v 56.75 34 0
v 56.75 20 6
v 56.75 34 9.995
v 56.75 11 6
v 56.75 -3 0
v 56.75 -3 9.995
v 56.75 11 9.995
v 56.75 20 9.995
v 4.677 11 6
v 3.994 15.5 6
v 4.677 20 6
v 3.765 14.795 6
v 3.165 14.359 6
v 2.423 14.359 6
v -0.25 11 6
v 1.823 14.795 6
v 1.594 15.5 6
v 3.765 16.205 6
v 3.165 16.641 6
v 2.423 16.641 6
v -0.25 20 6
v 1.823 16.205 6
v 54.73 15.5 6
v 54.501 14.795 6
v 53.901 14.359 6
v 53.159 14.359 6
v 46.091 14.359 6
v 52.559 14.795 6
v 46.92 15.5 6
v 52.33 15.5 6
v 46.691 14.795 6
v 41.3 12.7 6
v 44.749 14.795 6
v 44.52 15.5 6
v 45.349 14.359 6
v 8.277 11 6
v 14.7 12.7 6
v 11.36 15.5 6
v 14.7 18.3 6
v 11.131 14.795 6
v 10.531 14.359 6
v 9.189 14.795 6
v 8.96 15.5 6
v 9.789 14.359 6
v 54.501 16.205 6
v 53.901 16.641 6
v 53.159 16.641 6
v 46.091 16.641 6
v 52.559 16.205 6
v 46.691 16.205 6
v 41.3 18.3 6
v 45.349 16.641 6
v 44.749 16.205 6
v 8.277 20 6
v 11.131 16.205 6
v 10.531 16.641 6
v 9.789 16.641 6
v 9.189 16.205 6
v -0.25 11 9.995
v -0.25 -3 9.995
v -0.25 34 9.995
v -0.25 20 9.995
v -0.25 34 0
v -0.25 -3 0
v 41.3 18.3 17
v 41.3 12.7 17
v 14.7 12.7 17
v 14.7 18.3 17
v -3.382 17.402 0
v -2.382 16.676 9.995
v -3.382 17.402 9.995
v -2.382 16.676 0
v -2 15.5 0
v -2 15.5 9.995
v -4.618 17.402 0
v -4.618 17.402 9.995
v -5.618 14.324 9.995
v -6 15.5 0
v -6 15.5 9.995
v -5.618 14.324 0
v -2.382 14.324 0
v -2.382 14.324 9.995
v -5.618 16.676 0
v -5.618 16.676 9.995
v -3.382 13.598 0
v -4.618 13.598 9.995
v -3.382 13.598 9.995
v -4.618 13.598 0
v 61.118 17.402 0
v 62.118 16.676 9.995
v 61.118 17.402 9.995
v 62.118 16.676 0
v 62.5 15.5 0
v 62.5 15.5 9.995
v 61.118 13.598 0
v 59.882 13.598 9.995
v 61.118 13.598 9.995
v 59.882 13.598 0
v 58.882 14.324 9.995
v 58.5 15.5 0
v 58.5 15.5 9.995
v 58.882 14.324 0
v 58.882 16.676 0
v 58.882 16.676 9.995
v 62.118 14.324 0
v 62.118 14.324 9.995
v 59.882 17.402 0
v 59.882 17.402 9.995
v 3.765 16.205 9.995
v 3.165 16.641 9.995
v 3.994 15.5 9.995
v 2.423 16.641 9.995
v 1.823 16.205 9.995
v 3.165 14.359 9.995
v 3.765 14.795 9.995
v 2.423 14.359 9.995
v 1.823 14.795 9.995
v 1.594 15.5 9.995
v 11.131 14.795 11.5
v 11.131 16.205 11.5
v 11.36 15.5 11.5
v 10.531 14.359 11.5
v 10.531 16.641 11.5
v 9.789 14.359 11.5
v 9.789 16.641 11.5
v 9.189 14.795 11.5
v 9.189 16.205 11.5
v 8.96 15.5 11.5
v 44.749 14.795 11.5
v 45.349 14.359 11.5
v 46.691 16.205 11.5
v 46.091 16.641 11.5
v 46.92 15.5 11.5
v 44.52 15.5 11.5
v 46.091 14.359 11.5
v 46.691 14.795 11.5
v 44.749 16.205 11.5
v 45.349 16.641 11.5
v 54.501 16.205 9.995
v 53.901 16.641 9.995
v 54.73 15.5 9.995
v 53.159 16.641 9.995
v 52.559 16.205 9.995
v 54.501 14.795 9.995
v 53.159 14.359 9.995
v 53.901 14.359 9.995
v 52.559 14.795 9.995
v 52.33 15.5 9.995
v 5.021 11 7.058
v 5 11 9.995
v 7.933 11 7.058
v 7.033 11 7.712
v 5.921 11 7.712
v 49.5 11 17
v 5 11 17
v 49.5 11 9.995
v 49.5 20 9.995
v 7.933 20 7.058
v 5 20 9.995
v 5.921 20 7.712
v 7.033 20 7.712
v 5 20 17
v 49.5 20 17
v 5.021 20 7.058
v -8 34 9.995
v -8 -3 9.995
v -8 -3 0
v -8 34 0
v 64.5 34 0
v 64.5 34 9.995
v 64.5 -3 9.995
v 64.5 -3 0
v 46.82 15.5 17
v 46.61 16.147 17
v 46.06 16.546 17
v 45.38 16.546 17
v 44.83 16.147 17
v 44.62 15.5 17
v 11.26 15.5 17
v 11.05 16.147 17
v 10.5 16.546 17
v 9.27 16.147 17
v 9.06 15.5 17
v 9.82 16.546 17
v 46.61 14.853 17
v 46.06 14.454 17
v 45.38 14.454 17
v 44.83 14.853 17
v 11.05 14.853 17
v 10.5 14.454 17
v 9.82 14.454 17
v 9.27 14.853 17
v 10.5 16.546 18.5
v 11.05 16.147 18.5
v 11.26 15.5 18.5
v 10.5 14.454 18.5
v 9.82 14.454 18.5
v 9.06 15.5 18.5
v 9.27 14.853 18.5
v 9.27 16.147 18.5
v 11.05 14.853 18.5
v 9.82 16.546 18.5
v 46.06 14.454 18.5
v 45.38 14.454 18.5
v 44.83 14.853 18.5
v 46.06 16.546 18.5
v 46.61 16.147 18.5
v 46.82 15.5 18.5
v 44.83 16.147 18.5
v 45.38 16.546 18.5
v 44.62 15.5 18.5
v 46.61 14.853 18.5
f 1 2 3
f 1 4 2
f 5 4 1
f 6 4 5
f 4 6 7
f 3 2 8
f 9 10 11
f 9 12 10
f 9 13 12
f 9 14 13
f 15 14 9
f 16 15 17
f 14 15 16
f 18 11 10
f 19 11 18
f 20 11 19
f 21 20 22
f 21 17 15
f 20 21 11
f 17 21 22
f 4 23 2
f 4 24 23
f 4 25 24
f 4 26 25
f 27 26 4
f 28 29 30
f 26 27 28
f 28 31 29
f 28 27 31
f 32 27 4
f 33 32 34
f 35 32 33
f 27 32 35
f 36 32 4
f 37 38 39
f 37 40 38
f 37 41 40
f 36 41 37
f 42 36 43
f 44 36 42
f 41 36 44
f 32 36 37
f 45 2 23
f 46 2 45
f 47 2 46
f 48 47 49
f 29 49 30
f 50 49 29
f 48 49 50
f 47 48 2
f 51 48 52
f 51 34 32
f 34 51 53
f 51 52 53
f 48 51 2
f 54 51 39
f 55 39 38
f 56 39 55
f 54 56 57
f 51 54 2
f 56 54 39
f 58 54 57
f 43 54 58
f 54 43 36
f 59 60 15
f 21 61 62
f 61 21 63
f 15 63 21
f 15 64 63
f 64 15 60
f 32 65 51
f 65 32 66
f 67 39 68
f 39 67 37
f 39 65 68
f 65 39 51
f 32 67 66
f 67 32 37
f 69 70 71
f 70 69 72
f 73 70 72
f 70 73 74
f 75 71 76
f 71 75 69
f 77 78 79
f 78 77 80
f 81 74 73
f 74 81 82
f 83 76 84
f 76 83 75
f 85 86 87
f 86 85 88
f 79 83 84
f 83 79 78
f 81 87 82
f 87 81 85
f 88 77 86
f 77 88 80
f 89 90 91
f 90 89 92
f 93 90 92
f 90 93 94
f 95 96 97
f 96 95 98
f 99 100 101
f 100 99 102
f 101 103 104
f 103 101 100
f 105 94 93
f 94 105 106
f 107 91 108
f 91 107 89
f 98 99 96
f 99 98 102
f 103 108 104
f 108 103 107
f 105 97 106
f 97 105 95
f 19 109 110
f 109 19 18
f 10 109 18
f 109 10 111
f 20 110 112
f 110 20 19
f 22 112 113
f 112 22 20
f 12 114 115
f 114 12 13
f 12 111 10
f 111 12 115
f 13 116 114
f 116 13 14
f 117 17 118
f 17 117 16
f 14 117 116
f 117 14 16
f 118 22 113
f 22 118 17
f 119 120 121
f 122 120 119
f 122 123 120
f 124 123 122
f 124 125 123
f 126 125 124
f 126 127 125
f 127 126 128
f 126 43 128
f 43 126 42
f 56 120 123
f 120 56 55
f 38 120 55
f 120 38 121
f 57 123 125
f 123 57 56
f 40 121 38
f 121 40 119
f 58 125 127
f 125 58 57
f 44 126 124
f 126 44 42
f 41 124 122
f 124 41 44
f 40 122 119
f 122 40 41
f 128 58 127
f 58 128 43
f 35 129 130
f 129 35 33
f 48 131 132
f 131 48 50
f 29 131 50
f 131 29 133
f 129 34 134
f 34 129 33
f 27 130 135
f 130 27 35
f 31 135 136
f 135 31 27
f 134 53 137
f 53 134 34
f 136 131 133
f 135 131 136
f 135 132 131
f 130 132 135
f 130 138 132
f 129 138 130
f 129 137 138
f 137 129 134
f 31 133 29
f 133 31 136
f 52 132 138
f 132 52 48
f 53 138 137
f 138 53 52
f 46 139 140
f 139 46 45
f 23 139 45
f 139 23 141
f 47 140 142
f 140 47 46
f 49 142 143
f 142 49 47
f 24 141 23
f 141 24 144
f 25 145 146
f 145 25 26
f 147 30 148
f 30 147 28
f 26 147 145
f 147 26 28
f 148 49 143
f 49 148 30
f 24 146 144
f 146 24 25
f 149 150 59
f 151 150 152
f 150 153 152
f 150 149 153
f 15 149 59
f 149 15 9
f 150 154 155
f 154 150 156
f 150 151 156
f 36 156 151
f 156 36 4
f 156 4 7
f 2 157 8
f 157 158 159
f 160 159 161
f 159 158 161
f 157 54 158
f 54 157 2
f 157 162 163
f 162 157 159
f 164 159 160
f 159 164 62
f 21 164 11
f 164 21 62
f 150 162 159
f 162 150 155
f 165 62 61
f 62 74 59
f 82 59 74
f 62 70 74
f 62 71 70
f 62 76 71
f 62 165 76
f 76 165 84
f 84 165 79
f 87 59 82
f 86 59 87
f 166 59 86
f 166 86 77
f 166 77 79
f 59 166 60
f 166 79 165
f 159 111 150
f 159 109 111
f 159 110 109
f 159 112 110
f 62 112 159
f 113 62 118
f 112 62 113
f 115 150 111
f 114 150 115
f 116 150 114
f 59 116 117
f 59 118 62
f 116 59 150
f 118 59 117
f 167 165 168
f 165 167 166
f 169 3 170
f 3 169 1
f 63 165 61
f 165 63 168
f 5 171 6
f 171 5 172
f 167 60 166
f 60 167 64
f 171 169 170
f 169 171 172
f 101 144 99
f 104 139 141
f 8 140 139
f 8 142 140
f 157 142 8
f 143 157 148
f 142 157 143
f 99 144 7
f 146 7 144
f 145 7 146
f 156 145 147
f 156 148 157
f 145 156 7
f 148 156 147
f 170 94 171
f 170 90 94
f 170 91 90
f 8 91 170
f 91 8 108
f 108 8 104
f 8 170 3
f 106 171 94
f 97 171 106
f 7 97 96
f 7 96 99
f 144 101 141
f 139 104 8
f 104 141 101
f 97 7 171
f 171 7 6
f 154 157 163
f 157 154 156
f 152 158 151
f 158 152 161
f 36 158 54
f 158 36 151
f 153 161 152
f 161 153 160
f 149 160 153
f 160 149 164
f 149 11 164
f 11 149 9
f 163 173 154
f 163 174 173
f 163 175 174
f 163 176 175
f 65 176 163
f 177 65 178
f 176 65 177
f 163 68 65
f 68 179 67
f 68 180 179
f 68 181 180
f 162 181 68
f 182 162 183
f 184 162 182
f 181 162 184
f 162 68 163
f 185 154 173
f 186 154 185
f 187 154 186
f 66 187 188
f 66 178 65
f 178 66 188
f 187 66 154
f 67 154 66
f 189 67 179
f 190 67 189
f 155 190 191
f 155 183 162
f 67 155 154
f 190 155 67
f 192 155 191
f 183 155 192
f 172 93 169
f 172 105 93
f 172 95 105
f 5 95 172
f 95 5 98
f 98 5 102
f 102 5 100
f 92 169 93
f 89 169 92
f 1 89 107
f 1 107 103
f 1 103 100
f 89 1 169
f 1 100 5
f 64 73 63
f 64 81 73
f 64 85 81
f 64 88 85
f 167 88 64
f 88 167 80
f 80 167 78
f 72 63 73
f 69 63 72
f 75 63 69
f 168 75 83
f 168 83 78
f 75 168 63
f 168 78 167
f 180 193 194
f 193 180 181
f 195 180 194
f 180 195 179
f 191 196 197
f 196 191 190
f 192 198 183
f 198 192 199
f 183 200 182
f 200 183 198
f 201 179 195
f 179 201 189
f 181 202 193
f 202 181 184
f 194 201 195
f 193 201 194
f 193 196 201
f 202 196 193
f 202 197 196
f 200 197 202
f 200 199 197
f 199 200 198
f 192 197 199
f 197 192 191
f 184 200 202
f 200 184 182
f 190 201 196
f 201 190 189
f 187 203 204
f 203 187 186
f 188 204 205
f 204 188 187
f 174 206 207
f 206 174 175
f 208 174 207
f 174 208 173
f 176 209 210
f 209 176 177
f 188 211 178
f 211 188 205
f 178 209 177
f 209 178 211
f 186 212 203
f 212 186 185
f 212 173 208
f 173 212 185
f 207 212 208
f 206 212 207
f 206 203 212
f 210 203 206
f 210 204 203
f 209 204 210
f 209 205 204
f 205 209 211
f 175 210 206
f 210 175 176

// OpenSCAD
$fn = 10;

skinBreak = .005;

// from eagle:
// boardW =
// boardH =
// holeR =
// holeX1 = 2.794
// holeX2 = 10.16
// holeX3 = 45.72
// holeX4 = 53.53

screwHoleR = 1.2;   // 1.15 was a bit tight

boardW = 56.5;
boardH = 31;
boardD = 6;     // 1.6 board depth + gap for power and header solder

holeR = 4/2;    // 3.75/2;

// header
hGap = .6;      // .5 was snug

hGap2 = hGap/2;
hLocX = 15-hGap2;
hLocY = 13-hGap2;
hW = 26+hGap;
hH = 5+hGap;
hD = 11.5;
headerLoc = [ hLocX, hLocY, boardD ];

xBoardW = .5;   // extra board width
xBoardH = 0;

module pcb() {
    translate([-xBoardW/2, -xBoardH/2, 0])
    cube([boardW + xBoardW, boardH + xBoardH, boardD+skinBreak]);
    translate([ hLocX, hLocY, boardD ])
        cube([ hW, hH, hD+skinBreak*2 ]);
}

holeX1 = 2.794;
holeX2 = 10.16;
holeX3 = 45.72;
holeX4 = 53.53;

holezL = [ 
    [-4, hLocY + hH/2, -skinBreak+hD/2],
    [ 4+ boardW, hLocY + hH/2, -skinBreak+hD/2],
    [holeX1, hLocY + hH/2, -skinBreak+hD/2],
    [holeX2, hLocY + hH/2, -skinBreak+hD/2],
    [holeX3, hLocY + hH/2, -skinBreak+hD/2],
    [holeX4, hLocY + hH/2, -skinBreak+hD/2],
];
holezR = [
    holeR, holeR,
    screwHoleR, screwHoleR, screwHoleR, screwHoleR,
];
holezNum = 5;

module holes() {
    for (i=[0:1:holezNum])
        translate(holezL[i])
  #          cylinder(r=holezR[i], h=hD+skinBreak*2, center=true);
}

mountX = -8;
mountY = -3;
mountZ = 0;
mountW = boardW + 16;
mountH = boardH + 6;
mountD = boardD + hD;

module mount() {
    translate([mountX, mountY, mountZ])
        cube([mountW, mountH, mountD]);
}

    // voids
svPD = [  [mountW - 16 +xBoardW, 15, mountD+skinBreak], // top center
        [mountW - 16 +xBoardW, 15, mountD+skinBreak],   // bottom center
        [13, mountH, mountD+skinBreak],        // left
        [15, mountH, mountD+skinBreak],        // right
        [3, mountH, 3],     // gap
];
svPL = [ [mountX + 8 -xBoardW/2, -4, -skinBreak], 
        [mountX + 8 -xBoardW/2, 20, -skinBreak], 
        [mountX, mountY, 10-skinBreak], 
        [mountW - 23, mountY, 10-skinBreak], 
        [(holeX2-holeX1)/2+holeX1-1.5, mountY, -skinBreak], 
];
svPNum = 3;

module cutaway() {
if (1) {
    for (i=[0:1:svPNum])
        translate(svPL[i])
           cube(svPD[i]);
    gapR = 1.8;
    translate([(holeX2-holeX1)/2+holeX1, mountH/2+mountY, boardD])
        rotate([90, 0, 0])
            cylinder(r=gapR,h=mountH, center=true);
}
else {
    translate([ hLocX-2, hLocY-2, boardD ])
  #      cube([ hW+4, hH+4, hD+skinBreak*2 ]);
}
}

module clipBottom() {
    translate([-20, -20, 17 ])
    cube([100,100,20]);
}

module lastAdds() {
    translate([holeX2, hLocY + hH/2, hD+6])
            cylinder(r=screwHoleR-.1, h=2, center=true);
    translate([holeX3, hLocY + hH/2, hD+6])
            cylinder(r=screwHoleR-.1, h=2, center=true);
}

 difference() {
    mount();
    union() {
        translate([0,0,-skinBreak])
        pcb();
        holes();
        cutaway();
        clipBottom();
    }
}
lastAdds();
